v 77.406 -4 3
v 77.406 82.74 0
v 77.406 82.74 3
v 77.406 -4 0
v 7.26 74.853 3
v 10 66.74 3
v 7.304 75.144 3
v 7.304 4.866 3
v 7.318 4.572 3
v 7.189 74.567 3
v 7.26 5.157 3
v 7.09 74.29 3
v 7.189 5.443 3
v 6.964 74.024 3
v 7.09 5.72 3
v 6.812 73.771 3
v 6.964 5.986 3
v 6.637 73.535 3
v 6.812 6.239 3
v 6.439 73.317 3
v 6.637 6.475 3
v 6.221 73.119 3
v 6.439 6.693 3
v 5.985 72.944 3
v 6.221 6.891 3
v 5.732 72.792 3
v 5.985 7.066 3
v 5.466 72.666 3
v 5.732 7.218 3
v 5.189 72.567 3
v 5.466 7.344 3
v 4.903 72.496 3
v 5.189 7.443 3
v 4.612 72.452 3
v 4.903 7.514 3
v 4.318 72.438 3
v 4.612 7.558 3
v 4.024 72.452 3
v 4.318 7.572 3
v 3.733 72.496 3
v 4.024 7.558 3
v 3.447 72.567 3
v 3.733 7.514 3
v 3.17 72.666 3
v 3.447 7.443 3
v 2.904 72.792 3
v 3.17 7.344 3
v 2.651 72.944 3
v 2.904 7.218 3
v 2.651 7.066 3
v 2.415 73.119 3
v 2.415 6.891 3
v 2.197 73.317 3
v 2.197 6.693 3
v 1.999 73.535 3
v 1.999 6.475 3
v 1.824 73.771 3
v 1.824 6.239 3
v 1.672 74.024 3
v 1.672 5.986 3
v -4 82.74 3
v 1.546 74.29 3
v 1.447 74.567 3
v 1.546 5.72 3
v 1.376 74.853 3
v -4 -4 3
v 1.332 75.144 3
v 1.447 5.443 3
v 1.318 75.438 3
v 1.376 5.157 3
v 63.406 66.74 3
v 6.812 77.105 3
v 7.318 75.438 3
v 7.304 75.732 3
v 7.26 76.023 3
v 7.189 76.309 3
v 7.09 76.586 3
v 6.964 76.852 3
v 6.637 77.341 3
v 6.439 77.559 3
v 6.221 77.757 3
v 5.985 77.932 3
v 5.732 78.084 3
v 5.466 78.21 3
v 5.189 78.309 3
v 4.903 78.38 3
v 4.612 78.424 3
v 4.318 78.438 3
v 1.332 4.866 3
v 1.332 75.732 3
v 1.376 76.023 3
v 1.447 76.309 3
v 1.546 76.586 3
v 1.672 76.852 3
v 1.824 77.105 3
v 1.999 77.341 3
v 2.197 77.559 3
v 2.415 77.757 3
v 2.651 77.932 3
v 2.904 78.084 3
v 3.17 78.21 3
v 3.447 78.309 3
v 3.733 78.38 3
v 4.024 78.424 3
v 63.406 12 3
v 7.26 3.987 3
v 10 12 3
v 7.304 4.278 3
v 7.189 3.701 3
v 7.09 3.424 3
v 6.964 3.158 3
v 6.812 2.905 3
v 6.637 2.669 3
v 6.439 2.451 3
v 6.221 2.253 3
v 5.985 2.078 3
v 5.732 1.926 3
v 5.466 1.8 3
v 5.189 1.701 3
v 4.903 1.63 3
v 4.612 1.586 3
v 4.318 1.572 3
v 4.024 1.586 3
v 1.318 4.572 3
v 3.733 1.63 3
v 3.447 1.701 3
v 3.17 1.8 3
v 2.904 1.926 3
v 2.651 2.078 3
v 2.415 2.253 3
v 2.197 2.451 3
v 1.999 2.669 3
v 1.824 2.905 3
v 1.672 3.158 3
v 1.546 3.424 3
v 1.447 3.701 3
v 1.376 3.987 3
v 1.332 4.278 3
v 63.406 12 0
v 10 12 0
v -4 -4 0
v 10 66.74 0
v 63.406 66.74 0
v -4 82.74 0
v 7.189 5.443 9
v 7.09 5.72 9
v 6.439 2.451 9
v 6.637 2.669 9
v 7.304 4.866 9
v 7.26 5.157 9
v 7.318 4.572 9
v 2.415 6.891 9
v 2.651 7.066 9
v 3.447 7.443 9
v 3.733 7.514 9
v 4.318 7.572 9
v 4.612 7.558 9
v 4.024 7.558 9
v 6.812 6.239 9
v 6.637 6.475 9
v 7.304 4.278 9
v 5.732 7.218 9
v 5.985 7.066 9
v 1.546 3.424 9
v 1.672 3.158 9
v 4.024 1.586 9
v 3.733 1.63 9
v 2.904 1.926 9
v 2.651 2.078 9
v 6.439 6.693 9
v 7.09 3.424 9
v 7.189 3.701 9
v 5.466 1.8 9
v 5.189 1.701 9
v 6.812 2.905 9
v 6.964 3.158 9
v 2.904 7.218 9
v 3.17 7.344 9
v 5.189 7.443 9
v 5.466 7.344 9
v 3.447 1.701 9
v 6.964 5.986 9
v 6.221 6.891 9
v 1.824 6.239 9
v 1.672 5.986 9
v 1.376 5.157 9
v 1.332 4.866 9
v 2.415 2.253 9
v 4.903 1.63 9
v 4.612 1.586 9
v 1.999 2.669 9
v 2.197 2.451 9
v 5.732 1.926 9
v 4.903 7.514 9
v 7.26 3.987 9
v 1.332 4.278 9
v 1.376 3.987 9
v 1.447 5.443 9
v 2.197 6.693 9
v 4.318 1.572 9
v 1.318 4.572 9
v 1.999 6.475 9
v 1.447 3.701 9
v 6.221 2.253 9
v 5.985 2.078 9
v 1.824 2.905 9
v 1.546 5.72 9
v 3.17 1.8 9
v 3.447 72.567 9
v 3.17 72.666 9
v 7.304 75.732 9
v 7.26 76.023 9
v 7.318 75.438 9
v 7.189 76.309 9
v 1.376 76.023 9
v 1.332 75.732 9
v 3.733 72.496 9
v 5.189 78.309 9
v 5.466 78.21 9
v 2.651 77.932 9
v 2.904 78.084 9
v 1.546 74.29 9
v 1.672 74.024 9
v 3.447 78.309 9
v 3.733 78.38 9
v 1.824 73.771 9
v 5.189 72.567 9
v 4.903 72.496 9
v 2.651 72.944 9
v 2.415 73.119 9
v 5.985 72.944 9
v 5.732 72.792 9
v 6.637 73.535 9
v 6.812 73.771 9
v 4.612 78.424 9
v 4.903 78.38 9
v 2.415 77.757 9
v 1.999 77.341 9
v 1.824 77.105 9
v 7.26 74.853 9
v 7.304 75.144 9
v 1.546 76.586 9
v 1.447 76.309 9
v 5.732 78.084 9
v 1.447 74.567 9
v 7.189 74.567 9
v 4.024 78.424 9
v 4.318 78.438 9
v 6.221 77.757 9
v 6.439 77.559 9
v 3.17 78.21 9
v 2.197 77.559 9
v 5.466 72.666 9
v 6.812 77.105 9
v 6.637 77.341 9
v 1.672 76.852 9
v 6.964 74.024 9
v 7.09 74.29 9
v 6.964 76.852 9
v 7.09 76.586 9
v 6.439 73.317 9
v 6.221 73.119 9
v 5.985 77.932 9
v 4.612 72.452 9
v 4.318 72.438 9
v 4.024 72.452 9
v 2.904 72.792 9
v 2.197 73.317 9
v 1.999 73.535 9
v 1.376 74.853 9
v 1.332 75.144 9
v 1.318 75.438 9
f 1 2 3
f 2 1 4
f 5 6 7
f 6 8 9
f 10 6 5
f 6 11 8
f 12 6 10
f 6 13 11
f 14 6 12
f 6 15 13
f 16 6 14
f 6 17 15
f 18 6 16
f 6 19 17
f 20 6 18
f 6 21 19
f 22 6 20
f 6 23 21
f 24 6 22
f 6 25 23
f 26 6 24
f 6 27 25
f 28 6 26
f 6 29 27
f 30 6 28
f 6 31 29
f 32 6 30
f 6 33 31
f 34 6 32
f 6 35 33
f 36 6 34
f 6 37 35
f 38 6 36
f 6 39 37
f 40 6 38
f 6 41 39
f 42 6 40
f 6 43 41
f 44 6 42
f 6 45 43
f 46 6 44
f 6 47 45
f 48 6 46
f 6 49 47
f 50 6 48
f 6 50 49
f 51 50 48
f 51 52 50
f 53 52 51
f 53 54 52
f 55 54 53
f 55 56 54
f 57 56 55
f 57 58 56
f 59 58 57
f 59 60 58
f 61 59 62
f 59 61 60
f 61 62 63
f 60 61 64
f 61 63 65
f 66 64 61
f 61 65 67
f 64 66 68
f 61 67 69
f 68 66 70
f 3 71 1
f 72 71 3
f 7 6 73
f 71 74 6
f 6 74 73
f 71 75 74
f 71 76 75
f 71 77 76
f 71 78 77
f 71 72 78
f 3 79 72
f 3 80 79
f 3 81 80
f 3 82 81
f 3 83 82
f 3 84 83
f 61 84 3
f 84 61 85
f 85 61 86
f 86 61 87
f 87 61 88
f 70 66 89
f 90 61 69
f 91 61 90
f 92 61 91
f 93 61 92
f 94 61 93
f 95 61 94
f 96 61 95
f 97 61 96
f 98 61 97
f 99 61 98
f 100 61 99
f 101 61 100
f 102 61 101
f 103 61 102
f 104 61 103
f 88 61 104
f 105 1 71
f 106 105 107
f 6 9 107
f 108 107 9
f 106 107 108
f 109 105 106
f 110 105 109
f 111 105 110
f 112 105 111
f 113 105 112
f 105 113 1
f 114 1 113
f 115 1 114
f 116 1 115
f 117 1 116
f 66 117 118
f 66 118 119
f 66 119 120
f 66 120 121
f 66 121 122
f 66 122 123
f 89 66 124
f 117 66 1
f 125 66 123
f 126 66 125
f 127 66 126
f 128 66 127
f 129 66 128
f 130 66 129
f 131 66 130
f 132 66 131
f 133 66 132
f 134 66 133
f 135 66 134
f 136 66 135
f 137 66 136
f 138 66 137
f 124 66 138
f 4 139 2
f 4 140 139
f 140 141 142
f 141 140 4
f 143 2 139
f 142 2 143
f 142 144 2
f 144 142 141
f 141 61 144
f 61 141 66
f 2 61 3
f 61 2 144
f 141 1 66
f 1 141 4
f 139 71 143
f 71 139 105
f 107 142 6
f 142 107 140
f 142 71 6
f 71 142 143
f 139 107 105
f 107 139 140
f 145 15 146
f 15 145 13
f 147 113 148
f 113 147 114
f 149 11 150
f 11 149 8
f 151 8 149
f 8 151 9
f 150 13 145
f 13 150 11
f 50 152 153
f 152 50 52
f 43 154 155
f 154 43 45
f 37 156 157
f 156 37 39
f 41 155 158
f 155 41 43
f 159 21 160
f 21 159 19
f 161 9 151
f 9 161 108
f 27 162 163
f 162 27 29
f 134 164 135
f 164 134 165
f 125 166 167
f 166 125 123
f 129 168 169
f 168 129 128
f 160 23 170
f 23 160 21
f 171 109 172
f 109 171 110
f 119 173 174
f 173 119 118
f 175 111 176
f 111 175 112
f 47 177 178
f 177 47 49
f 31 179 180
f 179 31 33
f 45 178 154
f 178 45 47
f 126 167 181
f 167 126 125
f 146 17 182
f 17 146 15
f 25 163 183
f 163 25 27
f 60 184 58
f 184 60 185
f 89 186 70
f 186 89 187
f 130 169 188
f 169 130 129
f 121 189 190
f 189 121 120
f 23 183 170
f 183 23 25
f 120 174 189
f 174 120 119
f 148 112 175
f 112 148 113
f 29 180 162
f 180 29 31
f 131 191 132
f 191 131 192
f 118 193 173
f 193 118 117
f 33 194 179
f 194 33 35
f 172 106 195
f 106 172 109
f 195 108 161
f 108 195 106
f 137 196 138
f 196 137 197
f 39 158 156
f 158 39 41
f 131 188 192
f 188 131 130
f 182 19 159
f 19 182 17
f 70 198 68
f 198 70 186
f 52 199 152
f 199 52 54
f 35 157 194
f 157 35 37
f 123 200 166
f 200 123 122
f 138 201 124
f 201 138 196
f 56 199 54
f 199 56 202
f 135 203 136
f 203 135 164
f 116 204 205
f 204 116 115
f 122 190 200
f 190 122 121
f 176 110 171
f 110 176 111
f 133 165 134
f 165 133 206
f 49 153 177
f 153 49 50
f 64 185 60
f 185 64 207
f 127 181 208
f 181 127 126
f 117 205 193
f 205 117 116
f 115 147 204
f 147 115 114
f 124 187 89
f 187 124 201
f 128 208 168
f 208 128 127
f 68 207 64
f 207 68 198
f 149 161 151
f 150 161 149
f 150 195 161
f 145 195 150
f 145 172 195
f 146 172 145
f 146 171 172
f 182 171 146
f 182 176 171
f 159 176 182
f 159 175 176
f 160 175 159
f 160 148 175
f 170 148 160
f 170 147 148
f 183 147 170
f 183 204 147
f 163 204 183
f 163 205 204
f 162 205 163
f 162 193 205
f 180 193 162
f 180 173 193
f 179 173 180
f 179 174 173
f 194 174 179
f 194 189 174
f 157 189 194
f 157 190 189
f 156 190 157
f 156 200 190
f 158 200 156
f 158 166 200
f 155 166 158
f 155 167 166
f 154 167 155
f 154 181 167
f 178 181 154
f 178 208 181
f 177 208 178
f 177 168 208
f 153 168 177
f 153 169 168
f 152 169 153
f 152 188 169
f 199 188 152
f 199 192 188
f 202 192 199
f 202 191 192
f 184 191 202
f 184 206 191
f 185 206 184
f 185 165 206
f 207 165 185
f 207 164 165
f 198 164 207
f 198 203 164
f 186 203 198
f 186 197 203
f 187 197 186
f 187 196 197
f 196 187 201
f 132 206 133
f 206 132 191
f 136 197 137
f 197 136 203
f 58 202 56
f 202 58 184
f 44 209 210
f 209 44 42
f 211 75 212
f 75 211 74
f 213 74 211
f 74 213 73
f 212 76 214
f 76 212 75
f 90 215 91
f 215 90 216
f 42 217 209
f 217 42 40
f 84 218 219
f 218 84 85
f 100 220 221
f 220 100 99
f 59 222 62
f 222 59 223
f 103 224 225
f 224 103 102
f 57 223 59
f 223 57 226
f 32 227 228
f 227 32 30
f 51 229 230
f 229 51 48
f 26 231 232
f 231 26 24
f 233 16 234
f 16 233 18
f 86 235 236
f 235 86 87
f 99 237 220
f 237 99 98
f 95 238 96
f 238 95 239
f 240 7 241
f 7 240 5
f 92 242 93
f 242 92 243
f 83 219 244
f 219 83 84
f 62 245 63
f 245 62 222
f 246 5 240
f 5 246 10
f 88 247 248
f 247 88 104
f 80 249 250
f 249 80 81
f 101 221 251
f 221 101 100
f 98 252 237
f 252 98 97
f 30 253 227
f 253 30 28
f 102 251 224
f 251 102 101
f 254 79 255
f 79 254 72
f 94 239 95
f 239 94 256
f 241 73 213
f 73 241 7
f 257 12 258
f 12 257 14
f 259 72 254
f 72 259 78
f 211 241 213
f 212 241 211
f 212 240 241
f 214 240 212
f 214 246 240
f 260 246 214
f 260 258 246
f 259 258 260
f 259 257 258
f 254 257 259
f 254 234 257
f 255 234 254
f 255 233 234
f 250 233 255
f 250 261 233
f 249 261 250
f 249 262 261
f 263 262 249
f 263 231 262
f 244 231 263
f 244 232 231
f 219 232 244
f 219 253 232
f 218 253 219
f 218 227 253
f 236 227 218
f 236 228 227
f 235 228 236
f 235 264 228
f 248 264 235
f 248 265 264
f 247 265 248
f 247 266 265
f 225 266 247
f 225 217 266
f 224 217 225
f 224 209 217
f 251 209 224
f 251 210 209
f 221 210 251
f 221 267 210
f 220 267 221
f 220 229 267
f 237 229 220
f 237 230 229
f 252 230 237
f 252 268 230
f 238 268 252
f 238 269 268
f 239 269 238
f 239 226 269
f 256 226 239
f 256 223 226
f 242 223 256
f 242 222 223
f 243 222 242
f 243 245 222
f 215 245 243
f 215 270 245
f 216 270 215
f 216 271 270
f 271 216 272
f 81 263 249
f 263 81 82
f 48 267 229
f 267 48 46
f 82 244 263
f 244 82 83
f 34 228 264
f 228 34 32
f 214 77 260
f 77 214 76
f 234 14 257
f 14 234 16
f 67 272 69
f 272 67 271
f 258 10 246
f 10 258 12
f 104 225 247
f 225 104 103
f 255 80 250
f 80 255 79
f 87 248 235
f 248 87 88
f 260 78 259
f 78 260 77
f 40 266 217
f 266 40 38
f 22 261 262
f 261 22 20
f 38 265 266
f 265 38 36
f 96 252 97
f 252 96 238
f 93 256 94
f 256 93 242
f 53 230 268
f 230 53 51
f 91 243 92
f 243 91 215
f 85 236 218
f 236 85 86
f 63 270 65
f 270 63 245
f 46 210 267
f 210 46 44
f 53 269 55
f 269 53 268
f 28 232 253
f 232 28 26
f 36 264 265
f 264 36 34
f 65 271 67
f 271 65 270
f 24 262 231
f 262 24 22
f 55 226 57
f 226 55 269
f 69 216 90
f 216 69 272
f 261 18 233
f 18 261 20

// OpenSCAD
// Units: mm. PCB stand worked example.
union() {
  difference() {
    translate([-4, -4, 0])
      cube([81.406, 86.740, 3]);
    translate([10, 12, -0.1])
      cube([53.406, 54.740, 3.2]);
  }
  translate([4.318, 4.572, 2.8])
    cylinder(h=6.2, d=6, $fn=64);
  translate([4.318, 75.438, 2.8])
    cylinder(h=6.2, d=6, $fn=64);
}
